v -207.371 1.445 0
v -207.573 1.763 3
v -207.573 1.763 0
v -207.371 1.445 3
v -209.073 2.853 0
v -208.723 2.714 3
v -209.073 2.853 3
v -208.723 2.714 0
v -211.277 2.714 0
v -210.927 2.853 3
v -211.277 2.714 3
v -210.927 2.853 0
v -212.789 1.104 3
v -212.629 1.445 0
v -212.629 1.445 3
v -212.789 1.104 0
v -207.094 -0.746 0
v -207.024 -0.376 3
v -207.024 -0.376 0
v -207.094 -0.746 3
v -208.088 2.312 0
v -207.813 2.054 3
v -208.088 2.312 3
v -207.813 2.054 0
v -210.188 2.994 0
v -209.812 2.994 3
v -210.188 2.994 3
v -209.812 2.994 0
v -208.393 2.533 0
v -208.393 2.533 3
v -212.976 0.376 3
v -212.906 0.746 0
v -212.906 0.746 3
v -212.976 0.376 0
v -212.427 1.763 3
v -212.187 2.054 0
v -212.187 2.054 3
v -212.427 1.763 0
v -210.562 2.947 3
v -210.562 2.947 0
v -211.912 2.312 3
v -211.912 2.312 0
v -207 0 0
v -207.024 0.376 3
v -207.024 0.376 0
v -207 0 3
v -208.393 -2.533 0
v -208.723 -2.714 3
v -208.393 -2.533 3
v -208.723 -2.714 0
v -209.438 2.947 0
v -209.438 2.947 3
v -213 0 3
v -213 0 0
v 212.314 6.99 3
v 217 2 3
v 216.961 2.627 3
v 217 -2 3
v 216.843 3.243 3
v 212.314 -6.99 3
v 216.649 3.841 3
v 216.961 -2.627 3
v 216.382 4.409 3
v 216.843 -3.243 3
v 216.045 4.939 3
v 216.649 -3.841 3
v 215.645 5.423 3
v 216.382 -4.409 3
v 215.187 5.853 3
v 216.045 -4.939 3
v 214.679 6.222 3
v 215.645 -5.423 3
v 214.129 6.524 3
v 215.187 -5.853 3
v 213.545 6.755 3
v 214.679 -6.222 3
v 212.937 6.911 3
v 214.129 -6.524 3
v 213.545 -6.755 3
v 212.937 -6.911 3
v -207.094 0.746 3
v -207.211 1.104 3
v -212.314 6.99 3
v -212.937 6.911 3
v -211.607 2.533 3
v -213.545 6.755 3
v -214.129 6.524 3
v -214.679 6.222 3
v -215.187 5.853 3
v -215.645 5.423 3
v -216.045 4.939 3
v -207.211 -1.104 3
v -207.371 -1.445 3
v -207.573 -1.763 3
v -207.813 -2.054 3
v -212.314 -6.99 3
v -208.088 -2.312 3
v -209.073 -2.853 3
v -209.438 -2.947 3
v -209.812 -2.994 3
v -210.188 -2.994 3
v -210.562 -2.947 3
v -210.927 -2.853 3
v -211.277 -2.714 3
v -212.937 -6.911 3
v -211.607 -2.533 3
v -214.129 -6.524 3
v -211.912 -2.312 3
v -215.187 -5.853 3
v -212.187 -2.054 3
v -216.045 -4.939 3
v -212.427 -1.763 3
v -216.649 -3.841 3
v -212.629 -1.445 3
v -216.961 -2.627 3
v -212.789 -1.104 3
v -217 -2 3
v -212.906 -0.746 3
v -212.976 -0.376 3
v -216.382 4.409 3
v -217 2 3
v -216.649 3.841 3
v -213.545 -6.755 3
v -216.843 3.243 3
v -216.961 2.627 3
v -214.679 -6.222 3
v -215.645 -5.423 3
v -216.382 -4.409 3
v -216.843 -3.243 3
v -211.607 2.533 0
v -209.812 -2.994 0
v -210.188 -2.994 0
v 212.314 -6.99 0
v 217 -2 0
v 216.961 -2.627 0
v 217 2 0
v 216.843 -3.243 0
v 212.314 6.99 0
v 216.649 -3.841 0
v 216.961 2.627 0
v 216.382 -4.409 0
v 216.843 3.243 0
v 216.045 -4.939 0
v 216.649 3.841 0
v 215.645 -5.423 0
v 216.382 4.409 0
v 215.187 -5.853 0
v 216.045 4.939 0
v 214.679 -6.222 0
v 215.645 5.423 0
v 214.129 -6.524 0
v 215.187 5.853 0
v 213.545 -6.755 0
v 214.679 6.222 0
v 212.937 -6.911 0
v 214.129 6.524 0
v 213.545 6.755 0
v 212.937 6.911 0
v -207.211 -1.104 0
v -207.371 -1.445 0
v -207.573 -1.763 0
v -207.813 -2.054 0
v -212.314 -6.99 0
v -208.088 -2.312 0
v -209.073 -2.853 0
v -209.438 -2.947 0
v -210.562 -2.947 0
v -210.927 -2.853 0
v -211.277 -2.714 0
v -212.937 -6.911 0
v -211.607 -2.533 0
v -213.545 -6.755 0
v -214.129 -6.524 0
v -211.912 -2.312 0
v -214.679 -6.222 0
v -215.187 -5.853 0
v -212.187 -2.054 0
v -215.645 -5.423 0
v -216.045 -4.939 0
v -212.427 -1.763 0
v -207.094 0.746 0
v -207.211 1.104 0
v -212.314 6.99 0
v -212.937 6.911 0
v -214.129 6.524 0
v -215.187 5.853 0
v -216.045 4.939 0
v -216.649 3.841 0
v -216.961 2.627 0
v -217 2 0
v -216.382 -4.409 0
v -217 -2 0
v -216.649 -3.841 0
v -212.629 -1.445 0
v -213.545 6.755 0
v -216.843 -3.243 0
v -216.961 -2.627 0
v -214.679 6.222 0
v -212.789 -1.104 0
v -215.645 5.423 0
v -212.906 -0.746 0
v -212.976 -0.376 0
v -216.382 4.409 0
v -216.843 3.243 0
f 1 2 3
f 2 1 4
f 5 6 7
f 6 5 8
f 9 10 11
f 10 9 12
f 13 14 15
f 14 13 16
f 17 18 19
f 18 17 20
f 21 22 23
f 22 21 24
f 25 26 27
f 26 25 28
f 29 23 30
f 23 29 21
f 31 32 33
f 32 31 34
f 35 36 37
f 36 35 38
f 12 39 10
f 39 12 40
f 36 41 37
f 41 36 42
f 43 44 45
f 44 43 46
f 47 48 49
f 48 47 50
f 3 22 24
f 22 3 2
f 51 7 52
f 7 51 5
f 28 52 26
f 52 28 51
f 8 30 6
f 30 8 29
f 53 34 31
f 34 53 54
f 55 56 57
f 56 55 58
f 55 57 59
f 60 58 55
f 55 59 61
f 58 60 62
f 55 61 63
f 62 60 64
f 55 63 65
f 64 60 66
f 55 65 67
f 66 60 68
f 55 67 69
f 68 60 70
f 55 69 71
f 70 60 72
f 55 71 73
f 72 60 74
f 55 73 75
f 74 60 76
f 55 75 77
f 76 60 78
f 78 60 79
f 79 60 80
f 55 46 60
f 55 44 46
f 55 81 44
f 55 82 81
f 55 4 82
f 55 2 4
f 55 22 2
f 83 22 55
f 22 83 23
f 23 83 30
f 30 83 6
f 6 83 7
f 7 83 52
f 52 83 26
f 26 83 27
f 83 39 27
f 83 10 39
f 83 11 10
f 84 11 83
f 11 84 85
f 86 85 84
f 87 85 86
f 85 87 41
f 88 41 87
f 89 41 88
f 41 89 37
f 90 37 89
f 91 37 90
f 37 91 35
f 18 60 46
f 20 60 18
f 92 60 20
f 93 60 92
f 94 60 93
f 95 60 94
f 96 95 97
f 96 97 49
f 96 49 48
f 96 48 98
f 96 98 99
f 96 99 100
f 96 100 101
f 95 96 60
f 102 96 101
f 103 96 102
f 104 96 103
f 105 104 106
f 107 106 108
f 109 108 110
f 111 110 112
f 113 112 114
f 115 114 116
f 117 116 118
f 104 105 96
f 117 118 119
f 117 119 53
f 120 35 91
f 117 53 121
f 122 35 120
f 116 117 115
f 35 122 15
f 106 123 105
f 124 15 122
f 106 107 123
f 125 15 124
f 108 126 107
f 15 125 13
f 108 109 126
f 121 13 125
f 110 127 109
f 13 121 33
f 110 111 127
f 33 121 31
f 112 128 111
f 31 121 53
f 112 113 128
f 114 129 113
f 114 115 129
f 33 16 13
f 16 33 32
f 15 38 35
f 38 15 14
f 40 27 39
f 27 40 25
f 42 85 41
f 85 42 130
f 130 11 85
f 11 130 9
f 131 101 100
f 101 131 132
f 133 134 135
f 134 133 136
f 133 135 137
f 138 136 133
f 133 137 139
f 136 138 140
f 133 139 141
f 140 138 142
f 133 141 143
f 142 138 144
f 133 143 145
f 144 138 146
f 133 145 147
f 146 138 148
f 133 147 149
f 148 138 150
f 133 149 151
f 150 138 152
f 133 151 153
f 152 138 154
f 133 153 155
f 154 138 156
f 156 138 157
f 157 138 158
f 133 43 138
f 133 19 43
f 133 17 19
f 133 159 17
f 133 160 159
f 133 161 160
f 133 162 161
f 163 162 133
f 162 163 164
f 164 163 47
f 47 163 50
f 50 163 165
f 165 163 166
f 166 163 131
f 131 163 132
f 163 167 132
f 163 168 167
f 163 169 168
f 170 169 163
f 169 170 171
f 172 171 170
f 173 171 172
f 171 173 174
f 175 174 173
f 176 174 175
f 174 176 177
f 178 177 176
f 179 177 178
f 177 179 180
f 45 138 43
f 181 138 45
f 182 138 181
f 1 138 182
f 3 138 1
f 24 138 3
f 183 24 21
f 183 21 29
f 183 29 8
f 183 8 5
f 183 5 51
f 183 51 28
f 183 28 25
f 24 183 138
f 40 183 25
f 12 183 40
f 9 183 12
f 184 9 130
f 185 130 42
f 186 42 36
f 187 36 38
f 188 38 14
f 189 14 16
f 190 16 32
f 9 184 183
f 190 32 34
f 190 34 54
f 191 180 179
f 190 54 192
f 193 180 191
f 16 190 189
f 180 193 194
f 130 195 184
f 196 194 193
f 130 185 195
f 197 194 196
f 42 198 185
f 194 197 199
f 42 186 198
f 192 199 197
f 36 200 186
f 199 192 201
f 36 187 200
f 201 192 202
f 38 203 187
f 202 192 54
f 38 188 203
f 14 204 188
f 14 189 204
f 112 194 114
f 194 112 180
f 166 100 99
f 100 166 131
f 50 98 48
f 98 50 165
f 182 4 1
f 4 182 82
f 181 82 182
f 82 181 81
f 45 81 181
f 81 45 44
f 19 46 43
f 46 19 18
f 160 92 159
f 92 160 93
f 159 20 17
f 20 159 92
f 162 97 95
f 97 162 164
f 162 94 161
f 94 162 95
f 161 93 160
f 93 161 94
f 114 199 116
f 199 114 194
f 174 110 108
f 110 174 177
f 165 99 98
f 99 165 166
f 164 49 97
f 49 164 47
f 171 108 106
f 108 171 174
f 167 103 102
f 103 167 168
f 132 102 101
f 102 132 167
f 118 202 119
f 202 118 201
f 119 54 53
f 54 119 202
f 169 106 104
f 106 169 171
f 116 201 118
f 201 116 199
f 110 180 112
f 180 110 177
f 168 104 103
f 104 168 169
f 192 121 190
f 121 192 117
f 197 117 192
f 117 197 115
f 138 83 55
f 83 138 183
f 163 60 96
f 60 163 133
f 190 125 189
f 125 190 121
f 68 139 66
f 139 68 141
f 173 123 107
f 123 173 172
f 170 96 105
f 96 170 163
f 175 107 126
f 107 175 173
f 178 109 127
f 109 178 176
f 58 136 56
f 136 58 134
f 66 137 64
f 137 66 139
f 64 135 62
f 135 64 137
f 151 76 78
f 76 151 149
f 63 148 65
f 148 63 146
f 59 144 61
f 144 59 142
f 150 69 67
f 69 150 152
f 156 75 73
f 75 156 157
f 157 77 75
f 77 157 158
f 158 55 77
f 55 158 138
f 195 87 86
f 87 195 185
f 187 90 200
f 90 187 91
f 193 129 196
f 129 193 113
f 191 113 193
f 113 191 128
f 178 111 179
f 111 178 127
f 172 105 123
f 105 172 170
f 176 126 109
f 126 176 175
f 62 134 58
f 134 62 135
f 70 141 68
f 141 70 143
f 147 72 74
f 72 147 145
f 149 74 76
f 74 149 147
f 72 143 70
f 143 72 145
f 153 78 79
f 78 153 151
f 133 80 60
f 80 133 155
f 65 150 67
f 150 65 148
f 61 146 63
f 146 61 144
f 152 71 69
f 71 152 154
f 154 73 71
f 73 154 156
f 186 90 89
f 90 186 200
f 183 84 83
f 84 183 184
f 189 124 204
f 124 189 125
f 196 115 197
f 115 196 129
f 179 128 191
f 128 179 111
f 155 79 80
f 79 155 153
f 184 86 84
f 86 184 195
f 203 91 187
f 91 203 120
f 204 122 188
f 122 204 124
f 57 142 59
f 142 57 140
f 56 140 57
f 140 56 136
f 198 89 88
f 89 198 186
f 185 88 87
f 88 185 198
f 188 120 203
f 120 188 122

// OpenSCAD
$fn = 50;


difference() {
	union() {
		hull() {
			translate(v = [-212.0000000000, 2.0000000000, 0]) {
				cylinder(h = 3, r = 5);
			}
			translate(v = [212.0000000000, 2.0000000000, 0]) {
				cylinder(h = 3, r = 5);
			}
			translate(v = [-212.0000000000, -2.0000000000, 0]) {
				cylinder(h = 3, r = 5);
			}
			translate(v = [212.0000000000, -2.0000000000, 0]) {
				cylinder(h = 3, r = 5);
			}
		}
	}
	union() {
		translate(v = [-210.0000000000, 0.0000000000, 0]) {
			cylinder(h = 3, r = 3.0000000000);
		}
		translate(v = [-210.0000000000, 0.0000000000, 0]) {
			cylinder(h = 3, r = 1.5000000000);
		}
		translate(v = [-210.0000000000, 0.0000000000, 0]) {
			cylinder(h = 3, r = 1.5000000000);
		}
		translate(v = [-210.0000000000, 0.0000000000, 0]) {
			cylinder(h = 3, r = 1.5000000000);
		}
	}
}
